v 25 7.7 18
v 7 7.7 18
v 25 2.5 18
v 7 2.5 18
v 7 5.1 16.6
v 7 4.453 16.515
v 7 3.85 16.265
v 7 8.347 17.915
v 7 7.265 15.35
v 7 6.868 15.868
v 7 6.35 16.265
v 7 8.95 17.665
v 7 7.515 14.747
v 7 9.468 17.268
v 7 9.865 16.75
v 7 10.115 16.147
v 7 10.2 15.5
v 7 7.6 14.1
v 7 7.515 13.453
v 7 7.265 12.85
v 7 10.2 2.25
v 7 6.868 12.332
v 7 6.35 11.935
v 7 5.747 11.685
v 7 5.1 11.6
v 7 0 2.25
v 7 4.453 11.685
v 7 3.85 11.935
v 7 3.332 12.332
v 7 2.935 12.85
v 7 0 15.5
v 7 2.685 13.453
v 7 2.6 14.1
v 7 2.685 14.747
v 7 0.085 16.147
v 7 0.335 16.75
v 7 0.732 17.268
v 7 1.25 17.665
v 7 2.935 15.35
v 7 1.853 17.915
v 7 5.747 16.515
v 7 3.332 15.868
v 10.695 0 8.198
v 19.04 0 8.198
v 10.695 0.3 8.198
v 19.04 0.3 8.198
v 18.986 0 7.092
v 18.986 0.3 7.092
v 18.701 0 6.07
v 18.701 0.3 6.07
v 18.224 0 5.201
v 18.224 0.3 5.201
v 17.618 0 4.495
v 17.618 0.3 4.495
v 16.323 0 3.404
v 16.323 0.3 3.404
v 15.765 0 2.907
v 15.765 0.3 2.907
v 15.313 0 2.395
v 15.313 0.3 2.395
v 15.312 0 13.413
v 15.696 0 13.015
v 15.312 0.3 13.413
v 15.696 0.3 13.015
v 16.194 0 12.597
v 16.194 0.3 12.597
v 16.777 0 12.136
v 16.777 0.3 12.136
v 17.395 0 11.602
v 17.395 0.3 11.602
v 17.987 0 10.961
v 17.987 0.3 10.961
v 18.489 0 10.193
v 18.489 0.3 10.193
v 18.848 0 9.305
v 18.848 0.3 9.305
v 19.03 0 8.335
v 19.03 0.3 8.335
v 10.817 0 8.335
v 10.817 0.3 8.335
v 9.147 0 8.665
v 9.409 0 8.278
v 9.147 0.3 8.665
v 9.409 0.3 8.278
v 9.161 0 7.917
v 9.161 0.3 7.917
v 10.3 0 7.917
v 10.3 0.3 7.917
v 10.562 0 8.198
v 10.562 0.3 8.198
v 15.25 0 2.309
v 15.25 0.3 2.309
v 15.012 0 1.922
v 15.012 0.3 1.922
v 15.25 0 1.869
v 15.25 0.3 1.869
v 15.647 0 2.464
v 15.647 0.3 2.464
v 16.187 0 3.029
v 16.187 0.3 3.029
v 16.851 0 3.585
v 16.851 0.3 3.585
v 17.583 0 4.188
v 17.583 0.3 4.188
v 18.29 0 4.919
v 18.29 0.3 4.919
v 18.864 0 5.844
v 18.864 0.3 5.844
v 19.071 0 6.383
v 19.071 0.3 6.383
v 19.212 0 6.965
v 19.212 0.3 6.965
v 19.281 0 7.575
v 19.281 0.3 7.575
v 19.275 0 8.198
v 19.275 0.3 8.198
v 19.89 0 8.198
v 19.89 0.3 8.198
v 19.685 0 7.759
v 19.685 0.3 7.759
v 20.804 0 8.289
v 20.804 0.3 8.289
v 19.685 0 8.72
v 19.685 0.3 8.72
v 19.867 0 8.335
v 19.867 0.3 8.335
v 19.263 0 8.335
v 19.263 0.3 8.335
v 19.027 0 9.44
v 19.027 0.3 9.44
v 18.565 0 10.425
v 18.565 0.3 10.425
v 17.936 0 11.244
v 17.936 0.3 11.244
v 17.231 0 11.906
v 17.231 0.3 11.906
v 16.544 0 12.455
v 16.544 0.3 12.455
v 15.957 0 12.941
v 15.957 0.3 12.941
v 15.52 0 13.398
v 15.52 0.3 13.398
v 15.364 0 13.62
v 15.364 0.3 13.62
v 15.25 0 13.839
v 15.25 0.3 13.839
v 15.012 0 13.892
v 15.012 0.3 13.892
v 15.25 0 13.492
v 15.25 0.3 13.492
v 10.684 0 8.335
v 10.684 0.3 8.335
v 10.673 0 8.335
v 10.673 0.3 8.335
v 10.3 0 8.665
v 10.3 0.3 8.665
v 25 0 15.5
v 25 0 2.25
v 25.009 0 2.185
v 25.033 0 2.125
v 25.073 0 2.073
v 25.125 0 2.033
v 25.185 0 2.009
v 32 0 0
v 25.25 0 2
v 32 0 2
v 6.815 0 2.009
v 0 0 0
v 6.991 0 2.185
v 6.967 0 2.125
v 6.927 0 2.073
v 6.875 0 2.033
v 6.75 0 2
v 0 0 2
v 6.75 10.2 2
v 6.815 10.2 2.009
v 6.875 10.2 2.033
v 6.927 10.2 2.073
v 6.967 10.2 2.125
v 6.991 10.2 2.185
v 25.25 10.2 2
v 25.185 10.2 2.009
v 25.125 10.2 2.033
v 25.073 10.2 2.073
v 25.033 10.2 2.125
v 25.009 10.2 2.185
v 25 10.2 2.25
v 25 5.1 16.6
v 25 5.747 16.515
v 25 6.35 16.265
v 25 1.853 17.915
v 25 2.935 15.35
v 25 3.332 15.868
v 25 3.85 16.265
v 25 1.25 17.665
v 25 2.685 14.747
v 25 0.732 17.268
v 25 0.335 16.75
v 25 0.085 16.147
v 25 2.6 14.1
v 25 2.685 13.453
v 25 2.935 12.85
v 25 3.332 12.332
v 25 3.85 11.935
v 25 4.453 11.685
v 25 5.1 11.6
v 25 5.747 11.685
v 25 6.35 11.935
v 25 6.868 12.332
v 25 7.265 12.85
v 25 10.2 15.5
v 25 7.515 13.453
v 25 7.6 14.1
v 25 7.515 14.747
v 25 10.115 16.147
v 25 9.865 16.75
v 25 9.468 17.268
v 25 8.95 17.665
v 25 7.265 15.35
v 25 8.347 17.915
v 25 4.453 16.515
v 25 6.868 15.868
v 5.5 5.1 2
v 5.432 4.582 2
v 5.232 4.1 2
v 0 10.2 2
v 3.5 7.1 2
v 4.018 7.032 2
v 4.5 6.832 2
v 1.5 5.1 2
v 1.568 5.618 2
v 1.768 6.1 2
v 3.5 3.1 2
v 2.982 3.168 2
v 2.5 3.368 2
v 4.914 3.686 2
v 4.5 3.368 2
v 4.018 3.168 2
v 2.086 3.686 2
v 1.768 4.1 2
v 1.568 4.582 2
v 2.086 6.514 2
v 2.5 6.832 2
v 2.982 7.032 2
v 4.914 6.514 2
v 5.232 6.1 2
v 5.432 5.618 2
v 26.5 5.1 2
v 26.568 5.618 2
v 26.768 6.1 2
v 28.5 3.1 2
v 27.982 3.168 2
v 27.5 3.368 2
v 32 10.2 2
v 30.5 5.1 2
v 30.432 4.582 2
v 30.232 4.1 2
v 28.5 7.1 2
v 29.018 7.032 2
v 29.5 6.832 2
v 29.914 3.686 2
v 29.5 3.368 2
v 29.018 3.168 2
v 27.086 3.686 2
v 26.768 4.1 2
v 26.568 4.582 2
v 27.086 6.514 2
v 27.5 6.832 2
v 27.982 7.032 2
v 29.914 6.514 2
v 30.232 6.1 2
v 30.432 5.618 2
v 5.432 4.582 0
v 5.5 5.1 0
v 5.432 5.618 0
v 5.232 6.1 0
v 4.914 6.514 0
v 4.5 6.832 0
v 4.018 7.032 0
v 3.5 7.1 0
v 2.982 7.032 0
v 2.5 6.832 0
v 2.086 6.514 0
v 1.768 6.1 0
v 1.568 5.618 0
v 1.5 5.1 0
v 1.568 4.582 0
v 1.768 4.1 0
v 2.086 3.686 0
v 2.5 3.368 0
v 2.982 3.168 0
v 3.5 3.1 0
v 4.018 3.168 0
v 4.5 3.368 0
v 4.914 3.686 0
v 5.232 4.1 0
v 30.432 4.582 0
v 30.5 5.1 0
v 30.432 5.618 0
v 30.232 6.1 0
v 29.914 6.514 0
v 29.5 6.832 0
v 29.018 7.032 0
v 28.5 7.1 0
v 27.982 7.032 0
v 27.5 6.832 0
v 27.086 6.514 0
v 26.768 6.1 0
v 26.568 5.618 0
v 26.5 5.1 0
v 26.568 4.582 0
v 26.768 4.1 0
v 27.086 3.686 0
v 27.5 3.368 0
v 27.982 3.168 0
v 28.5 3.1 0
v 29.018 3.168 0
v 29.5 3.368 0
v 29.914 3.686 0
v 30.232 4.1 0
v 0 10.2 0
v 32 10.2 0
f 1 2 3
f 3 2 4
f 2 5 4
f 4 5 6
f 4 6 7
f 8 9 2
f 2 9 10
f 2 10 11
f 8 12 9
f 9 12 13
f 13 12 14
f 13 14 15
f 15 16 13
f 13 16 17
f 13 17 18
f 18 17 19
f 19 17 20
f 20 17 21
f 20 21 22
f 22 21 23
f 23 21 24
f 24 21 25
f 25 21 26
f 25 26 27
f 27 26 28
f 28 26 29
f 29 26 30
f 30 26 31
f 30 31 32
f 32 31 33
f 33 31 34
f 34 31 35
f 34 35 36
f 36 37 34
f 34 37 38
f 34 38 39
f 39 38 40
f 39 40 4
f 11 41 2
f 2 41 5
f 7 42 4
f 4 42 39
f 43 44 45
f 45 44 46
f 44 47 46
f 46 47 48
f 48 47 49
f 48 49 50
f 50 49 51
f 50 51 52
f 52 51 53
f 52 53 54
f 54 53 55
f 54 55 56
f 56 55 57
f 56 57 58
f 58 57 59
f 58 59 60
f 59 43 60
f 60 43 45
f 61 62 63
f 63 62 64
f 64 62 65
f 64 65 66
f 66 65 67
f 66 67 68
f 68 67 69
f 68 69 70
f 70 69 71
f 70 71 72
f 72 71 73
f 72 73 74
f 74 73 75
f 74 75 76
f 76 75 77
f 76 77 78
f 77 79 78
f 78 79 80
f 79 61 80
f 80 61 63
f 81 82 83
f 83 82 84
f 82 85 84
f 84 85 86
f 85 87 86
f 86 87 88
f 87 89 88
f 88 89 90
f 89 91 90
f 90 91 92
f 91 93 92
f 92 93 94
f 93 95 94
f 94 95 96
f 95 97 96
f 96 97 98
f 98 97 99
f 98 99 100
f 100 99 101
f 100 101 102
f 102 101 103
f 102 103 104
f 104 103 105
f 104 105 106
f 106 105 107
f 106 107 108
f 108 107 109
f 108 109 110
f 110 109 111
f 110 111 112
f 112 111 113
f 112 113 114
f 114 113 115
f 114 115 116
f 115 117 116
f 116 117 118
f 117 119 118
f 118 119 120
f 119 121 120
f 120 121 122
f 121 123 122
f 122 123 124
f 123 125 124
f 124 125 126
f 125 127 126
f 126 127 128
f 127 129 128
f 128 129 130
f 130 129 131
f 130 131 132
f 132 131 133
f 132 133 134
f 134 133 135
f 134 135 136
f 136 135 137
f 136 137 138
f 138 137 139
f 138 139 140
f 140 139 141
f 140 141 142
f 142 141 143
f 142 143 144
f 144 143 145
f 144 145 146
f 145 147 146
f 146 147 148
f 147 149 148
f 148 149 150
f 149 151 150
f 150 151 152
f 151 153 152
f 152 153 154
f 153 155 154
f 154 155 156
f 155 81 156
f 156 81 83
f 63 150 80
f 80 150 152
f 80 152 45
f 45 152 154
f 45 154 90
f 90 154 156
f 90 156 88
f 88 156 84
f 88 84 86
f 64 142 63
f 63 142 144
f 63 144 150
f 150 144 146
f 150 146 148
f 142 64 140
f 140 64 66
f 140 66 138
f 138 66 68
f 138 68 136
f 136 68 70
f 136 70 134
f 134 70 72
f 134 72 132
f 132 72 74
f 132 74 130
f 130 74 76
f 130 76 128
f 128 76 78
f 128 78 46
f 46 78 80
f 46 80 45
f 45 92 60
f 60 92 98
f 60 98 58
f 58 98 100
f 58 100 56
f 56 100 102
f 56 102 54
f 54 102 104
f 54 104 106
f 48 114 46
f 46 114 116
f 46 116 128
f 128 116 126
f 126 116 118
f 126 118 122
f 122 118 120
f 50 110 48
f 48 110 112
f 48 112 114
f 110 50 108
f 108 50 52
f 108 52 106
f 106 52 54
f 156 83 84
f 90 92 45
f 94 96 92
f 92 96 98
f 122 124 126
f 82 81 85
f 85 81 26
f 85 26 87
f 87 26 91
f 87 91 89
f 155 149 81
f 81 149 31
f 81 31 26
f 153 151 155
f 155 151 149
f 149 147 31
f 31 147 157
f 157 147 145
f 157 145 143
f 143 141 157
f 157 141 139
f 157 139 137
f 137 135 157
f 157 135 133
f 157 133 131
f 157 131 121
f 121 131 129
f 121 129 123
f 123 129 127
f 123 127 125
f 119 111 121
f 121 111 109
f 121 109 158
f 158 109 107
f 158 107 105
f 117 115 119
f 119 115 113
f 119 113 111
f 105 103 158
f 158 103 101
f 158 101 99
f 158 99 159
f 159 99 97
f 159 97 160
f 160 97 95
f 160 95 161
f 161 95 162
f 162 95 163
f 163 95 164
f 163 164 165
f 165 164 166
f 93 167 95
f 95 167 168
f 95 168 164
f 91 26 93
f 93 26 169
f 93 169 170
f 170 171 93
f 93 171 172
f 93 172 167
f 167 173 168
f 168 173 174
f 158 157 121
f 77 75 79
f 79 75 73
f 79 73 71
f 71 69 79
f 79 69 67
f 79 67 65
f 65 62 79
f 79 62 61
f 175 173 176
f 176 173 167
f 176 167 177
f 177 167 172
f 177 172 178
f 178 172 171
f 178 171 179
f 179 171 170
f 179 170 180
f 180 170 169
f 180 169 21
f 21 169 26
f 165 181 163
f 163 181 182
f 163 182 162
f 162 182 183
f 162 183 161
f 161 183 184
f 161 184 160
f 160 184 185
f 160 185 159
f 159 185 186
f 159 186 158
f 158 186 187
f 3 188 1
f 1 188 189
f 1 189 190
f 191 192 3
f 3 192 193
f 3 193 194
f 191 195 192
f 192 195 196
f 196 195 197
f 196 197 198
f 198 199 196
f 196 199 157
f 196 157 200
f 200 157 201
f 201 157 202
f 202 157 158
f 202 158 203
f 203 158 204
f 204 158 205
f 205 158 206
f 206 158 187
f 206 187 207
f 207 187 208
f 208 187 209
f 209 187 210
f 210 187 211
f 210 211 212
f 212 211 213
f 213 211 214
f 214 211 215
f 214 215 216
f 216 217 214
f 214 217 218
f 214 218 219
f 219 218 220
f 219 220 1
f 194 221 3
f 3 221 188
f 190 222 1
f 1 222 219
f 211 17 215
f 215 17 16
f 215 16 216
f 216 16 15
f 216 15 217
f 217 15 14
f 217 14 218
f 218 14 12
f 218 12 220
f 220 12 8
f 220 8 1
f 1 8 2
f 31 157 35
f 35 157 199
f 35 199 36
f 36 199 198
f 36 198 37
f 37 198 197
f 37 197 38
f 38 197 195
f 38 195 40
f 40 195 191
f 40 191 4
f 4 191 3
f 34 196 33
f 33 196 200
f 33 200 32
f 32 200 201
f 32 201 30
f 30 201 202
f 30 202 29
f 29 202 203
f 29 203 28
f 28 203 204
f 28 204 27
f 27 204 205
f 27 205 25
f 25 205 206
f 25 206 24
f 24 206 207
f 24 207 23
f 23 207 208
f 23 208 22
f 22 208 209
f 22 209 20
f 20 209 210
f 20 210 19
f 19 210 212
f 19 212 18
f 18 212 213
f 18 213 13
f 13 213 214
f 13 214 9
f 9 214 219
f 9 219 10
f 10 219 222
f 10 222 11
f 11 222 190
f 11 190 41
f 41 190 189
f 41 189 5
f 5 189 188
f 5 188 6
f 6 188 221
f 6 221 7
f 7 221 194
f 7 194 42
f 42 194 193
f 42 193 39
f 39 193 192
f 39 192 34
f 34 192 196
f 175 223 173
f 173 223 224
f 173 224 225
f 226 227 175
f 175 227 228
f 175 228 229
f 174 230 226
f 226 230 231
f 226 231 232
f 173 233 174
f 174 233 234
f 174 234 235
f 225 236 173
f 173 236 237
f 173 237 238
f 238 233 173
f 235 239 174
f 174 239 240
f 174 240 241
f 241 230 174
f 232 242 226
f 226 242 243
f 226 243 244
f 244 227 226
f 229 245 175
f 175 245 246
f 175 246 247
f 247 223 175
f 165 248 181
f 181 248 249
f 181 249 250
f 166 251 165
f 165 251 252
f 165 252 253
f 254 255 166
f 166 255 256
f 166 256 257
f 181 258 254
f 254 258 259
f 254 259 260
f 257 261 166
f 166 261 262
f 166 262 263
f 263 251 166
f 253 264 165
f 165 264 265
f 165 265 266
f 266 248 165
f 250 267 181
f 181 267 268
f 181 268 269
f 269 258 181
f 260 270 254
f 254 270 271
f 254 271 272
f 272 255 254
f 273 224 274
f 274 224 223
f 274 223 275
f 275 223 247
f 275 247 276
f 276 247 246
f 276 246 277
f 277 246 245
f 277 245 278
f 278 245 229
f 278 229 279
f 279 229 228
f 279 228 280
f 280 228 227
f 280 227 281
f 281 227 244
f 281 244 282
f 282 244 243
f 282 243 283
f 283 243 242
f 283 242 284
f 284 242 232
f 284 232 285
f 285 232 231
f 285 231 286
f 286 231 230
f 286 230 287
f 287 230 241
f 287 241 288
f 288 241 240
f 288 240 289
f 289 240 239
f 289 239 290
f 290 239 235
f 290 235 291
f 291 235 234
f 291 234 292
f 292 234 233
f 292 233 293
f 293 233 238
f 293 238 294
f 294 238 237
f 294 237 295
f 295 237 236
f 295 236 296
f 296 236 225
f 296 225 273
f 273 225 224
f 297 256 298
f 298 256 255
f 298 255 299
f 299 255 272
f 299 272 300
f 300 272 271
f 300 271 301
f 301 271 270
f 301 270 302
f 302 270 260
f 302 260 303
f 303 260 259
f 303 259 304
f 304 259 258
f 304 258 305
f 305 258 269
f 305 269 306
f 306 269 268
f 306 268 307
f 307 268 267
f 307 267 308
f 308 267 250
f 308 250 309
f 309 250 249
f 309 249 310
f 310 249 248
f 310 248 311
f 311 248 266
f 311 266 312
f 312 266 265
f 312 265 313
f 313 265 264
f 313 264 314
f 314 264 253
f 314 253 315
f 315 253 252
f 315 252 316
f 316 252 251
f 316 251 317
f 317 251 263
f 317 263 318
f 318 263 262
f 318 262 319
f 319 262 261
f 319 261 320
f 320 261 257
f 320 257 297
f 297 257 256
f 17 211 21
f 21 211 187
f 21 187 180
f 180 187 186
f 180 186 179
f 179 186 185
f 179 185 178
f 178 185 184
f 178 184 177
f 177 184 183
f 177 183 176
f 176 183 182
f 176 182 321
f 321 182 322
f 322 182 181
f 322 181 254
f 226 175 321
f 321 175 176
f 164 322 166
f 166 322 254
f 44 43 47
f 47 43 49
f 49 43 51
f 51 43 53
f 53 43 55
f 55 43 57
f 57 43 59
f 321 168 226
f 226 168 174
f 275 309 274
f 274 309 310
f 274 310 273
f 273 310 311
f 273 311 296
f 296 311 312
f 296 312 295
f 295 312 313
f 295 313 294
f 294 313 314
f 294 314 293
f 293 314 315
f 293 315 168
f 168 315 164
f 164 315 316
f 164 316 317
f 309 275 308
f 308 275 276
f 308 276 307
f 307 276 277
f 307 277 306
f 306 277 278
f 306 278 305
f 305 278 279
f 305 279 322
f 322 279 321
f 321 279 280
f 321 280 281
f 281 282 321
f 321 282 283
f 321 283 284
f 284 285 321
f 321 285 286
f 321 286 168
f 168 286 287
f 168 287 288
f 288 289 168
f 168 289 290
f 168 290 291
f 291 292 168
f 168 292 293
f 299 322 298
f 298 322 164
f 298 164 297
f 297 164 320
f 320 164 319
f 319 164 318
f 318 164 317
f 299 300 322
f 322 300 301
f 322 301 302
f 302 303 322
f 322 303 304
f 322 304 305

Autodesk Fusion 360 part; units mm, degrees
sketch "Sketch1" plane through (0, 0, 0) normal (0, 0, 1) x (1, 0, 0)
  line L0 (0, 0) -> (32, 0)
  line L1 (32, 0) -> (32, 10.2)
  line L2 (32, 10.2) -> (0, 10.2)
  line L3 (0, 10.2) -> (0, 0)
  dimension "d1" = 32
  dimension "d2" = 10.2
extrude "Extrude1" add sketch "Sketch1" along normal blind 2
sketch "Sketch2" plane through (0, 0, 2) normal (0, 0, 1) x (-1, 0, 0)
  line L0 (0, -10.2) -> (0, 0)
  line L1 (0, 0) -> (-32, 0)
  line L2 (-32, 0) -> (-32, -10.2)
  line L3 (-32, -10.2) -> (0, -10.2)
  line L4 (-7, -10.2) -> (-25, -10.2)
  line L5 (-25, -10.2) -> (-25, 0)
  line L6 (-25, 0) -> (-7, 0)
  line L7 (-7, 0) -> (-7, -10.2)
  circle A0 centre (-3.5, -5.1) radius 2
  circle A1 centre (-28.5, -5.1) radius 2
  dimension "d5" = 7
  dimension "d6" = 7
  dimension "d7" = 5.1
  dimension "d8" = 3.5
  dimension "d9" = 4
  dimension "d10" = 3.5
  dimension "d11" = 5.1
  dimension "d12" = 4
extrude "Extrude2" cut sketch "Sketch2" against normal blind 2.1 contours A0 | A1
extrude "Extrude3" add sketch "Sketch2" along normal blind 16 contours L1 L3 L4 L5 L6 L7
sketch "Sketch3" plane through (25, 0, 0) normal (1, 0, 0) x (0, 1, 0)
  line L0 (0, 2) -> (10.2, 2)
  line L1 (10.2, 2) -> (10.2, 18)
  line L2 (10.2, 18) -> (0, 18)
  line L3 (0, 18) -> (0, 2)
  circle A0 centre (5.1, 14.1) radius 2.5
  dimension "d17" = 3.9
  dimension "d18" = 5.1
  dimension "d19" = 5
extrude "Extrude4" cut sketch "Sketch3" against normal blind 20 contours A0
fillet "Fillet1" radius 2.5 2 edges at (16, 0, 18) (16, 10.2, 18)
fillet "Fillet2" radius 0.25 2 edges at (25, 5.1, 2) (7, 5.1, 2)
sketch "Sketch4" plane through (0, 0, 0) normal (0, -1, 0) x (1, 0, 0)
  line L0 (25, 15.5) -> (7, 15.5)
  line L1 (7, 15.5) -> (7, 2.25)
  arc A0 (6.75, 2) -> (7, 2.25) centre (6.75, 2.25) ccw
  line L2 (6.75, 2) -> (0, 2)
  line L3 (0, 2) -> (0, 0)
  line L4 (0, 0) -> (32, 0)
  line L5 (32, 0) -> (32, 2)
  line L6 (32, 2) -> (25.25, 2)
  arc A1 (25, 2.25) -> (25.25, 2) centre (25.25, 2.25) ccw
  line L7 (25, 2.25) -> (25, 15.5)
  line L8 (15.0115, 13.8918) -> (15.2499, 13.8388)
  line L9 (15.0115, 1.9217) -> (15.2499, 1.8688)
  line L10 (15.2499, 2.3085) -> (10.5625, 8.1981)
  line L11 (10.6841, 8.3354) -> (15.2499, 13.4918)
  line L12 (10.817, 8.3354) -> (15.3124, 13.4128)
  line L13 (15.3132, 2.3954) -> (10.6954, 8.1981)
  spline S0 degree 5 poles (15.0115, 13.8918) (15.0366, 13.8331) (15.0755, 13.7537) (15.1214, 13.6739) (15.1743, 13.5935) (15.2341, 13.5126) (15.2499, 13.4918) knots 0 0 0 0 0 0 0.04 0.053771 0.053771 0.053771 0.053771 0.053771 0.053771
  line L14 (15.2177, 13.5342) -> (15.2821, 13.4495)
  spline S1 degree 5 poles (15.2499, 2.3085) (15.2476, 2.3054) (15.194, 2.2294) (15.1434, 2.1527) (15.0959, 2.0753) (15.0514, 1.9972) (15.0115, 1.9217) knots 0.958261 0.958261 0.958261 0.958261 0.958261 0.958261 0.96 1 1 1 1 1 1
  line L15 (15.2777, 2.3478) -> (15.2221, 2.2693)
  line L16 (19.8903, 8.1981) -> (19.6849, 7.759)
  line L17 (19.6849, 7.759) -> (20.8035, 8.2887)
  line L18 (20.8035, 8.2887) -> (19.6849, 8.7197)
  line L19 (19.6849, 8.7197) -> (19.8674, 8.3354)
  spline S2 degree 5 poles (15.2499, 13.8388) (15.275, 13.7801) (15.3328, 13.6621) (15.4428, 13.4833) (15.636, 13.2415) (15.9534, 12.9319) (16.3409, 12.6103) (16.7857, 12.2676) (17.2659, 11.8886) (17.7534, 11.4561) (18.2174, 10.9546) (18.6276, 10.3741) (18.9469, 9.734) (19.126, 9.1768) (19.2132, 8.7476) (19.2502, 8.4653) (19.263, 8.3354) knots 0 0 0 0 0 0 0.04 0.08 0.12 0.16 0.2 0.24 0.28 0.32 0.36 0.4 0.44 0.473865 0.473865 0.473865 0.473865 0.473865 0.473865
  line L20 (19.1848, 9.1287) -> (19.3411, 7.542)
  spline S3 degree 5 poles (19.2746, 8.1981) (19.2853, 8.0482) (19.2958, 7.7438) (19.2774, 7.2862) (19.1846, 6.69) (18.9625, 5.9984) (18.6463, 5.3801) (18.2572, 4.8452) (17.8198, 4.3863) (17.3603, 3.9873) (16.904, 3.6275) (16.4734, 3.2862) (16.0845, 2.9471) (15.7463, 2.6009) (15.5197, 2.3146) (15.375, 2.094) (15.2897, 1.9443) (15.2499, 1.8688) knots 0.481014 0.481014 0.481014 0.481014 0.481014 0.481014 0.52 0.56 0.6 0.64 0.68 0.72 0.76 0.8 0.84 0.88 0.92 0.96 1 1 1 1 1 1
  line L21 (19.2097, 9.1087) -> (19.3396, 7.2875)
  spline S4 degree 5 poles (15.3124, 13.4128) (15.332, 13.3889) (15.4036, 13.3041) (15.5393, 13.1573) (15.762, 12.9459) (16.1025, 12.6633) (16.5474, 12.3206) (17.0276, 11.9416) (17.515, 11.5091) (17.979, 11.0075) (18.3892, 10.427) (18.7131, 9.7778) (18.894, 9.2098) (18.9811, 8.7693) (19.0172, 8.476) (19.0296, 8.3354) knots 0.064218 0.064218 0.064218 0.064218 0.064218 0.064218 0.08 0.12 0.16 0.2 0.24 0.28 0.32 0.36 0.4 0.44 0.476625 0.476625 0.476625 0.476625 0.476625 0.476625
  line L22 (14.9219, 13.8881) -> (15.7028, 12.9376)
  line L23 (18.9651, 9.0672) -> (19.094, 7.6035)
  spline S5 degree 5 poles (19.0398, 8.1981) (19.0483, 8.0587) (19.0561, 7.765) (19.0358, 7.3185) (18.9432, 6.7334) (18.7242, 6.0513) (18.408, 5.433) (18.0189, 4.8982) (17.5814, 4.4393) (17.1219, 4.0403) (16.6657, 3.6805) (16.235, 3.3392) (15.8681, 3.0192) (15.6141, 2.7622) (15.4485, 2.5703) (15.3521, 2.4471) (15.3132, 2.3954) knots 0.483768 0.483768 0.483768 0.483768 0.483768 0.483768 0.52 0.56 0.6 0.64 0.68 0.72 0.76 0.8 0.84 0.88 0.92 0.948678 0.948678 0.948678 0.948678 0.948678 0.948678
  line L24 (18.989, 9.0312) -> (19.0905, 7.3649)
  line L25 (15.7537, 2.9821) -> (14.8727, 1.8087)
  line L26 (10.6954, 8.1981) -> (19.0398, 8.1981)
  line L27 (19.2746, 8.1981) -> (19.8903, 8.1981)
  line L28 (19.263, 8.3354) -> (19.8674, 8.3354)
  line L29 (10.6725, 8.3354) -> (10.3002, 8.665)
  line L30 (10.3002, 8.665) -> (9.1473, 8.665)
  line L31 (9.1473, 8.665) -> (9.409, 8.2777)
  line L32 (9.409, 8.2777) -> (9.1615, 7.917)
  line L33 (9.1615, 7.917) -> (10.3, 7.917)
  line L34 (10.3, 7.917) -> (10.5625, 8.1981)
  line L35 (10.6725, 8.3354) -> (10.6841, 8.3354)
  line L36 (10.817, 8.3354) -> (19.0296, 8.3354)
  point P0 (16.3357, 12.6206)
  point P1 (16.627, 3.4048)
  point P2 (18.7456, 10.1048)
  point P3 (18.825, 5.7617)
  point P4 (18.5867, 5.8147)
  point P5 (18.5072, 10.1578)
  point P6 (16.0973, 12.6736)
  point P7 (16.3886, 3.4577)
extrude "Extrude5" cut sketch "Sketch4" against normal blind 0.3 contours L8 L9 S0 L14 S1 L15 S2 L20 S3 L21 S4 L22 L23 S5 L24 L25 | L16 L17 L18 L19 L20 L21 L27 L28 | L10 L11 L12 L13 L14 L15 L22 L23 L24 L25 L26 L29 L30 L31 L32 L33 L34 L35 L36
sketch "Sketch5" plane through (0, 0, 18) normal (0, 0, 1) x (-1, 0, 0)
  line L0 (-25, -7.7) -> (-7, -7.7)
  line L1 (-7, -7.7) -> (-7, -2.5)
  line L2 (-7, -2.5) -> (-25, -2.5)
  line L3 (-25, -2.5) -> (-25, -7.7)
  line L4 (-7, -10.2) -> (-25, -10.2)
  line L5 (-25, -10.2) -> (-25, 0)
  line L6 (-25, 0) -> (-7, 0)
  line L7 (-7, 0) -> (-7, -10.2)
  point P0 (-7, -10.2)
  point P1 (-25, 0)
sketch "Sketch6" plane through (16, 5.1, 19.1) normal (0, 0, 1) x (1, 0, 0)
  line L0 (-9, 5.1) -> (9, 5.1)
  line L1 (9, 5.1) -> (9, -5.1)
  line L2 (9, -5.1) -> (-9, -5.1)
  line L3 (-9, -5.1) -> (-9, 5.1)
  point P0 (-9, 5.1)
  point P1 (9, -5.1)
extrude "Extrude6" add 1 faces at (19, 4.2333, 18) along direction (0, 0, 1) blind 1.1
sketch "Sketch7" plane through (16, 0, 18.55) normal (0, -1, 0) x (1, 0, 0)
  line L0 (-9, -3.05) -> (9, -3.05)
  line L1 (9, -3.05) -> (9, 0.55)
  line L2 (9, 0.55) -> (-9, 0.55)
  line L3 (-9, 0.55) -> (-9, -3.05)
  point P0 (-9, -3.05)
  point P1 (9, 0.55)
sketch "Sketch8" plane through (0, 0, 0) normal (0, -1, 0) x (1, 0, 0)
  line L0 (9.409, 8.2777) -> (9.1473, 8.665)
  line L1 (9.1473, 8.665) -> (10.3002, 8.665)
  line L2 (10.3002, 8.665) -> (10.6725, 8.3354)
  line L3 (10.6725, 8.3354) -> (10.6841, 8.3354)
  line L4 (10.6841, 8.3354) -> (15.2499, 13.4918)
  spline S0 degree 5 poles (15.2499, 13.4918) (15.2341, 13.5126) (15.1743, 13.5935) (15.1214, 13.6739) (15.0755, 13.7537) (15.0366, 13.8331) (15.0115, 13.8918) knots -0.053771 -0.053771 -0.053771 -0.053771 -0.053771 -0.053771 -0.04 0 0 0 0 0 0
  line L5 (15.0115, 13.8918) -> (15.2499, 13.8388)
  spline S1 degree 5 poles (15.2499, 13.8388) (15.275, 13.7801) (15.3328, 13.6621) (15.4428, 13.4833) (15.636, 13.2415) (15.9534, 12.9319) (16.3409, 12.6103) (16.7857, 12.2676) (17.2659, 11.8886) (17.7534, 11.4561) (18.2174, 10.9546) (18.6276, 10.3741) (18.9469, 9.734) (19.126, 9.1768) (19.2132, 8.7476) (19.2502, 8.4653) (19.263, 8.3354) knots 0 0 0 0 0 0 0.04 0.08 0.12 0.16 0.2 0.24 0.28 0.32 0.36 0.4 0.44 0.473865 0.473865 0.473865 0.473865 0.473865 0.473865
  line L6 (19.263, 8.3354) -> (19.8674, 8.3354)
  line L7 (19.8674, 8.3354) -> (19.6849, 8.7197)
  line L8 (19.6849, 8.7197) -> (20.8035, 8.2887)
  line L9 (20.8035, 8.2887) -> (19.6849, 7.759)
  line L10 (19.6849, 7.759) -> (19.8903, 8.1981)
  line L11 (19.8903, 8.1981) -> (19.2746, 8.1981)
  spline S2 degree 5 poles (19.2746, 8.1981) (19.2853, 8.0482) (19.2958, 7.7438) (19.2774, 7.2862) (19.1846, 6.69) (18.9625, 5.9984) (18.6463, 5.3801) (18.2572, 4.8452) (17.8198, 4.3863) (17.3603, 3.9873) (16.904, 3.6275) (16.4734, 3.2862) (16.0845, 2.9471) (15.7463, 2.6009) (15.5197, 2.3146) (15.375, 2.094) (15.2897, 1.9443) (15.2499, 1.8688) knots 0.481014 0.481014 0.481014 0.481014 0.481014 0.481014 0.52 0.56 0.6 0.64 0.68 0.72 0.76 0.8 0.84 0.88 0.92 0.96 1 1 1 1 1 1
  line L12 (15.2499, 1.8688) -> (15.0115, 1.9217)
  spline S3 degree 5 poles (15.0115, 1.9217) (15.0514, 1.9972) (15.0959, 2.0753) (15.1434, 2.1527) (15.194, 2.2294) (15.2476, 2.3054) (15.2499, 2.3085) knots -1 -1 -1 -1 -1 -1 -0.96 -0.958261 -0.958261 -0.958261 -0.958261 -0.958261 -0.958261
  line L13 (15.2499, 2.3085) -> (10.5625, 8.1981)
  line L14 (10.5625, 8.1981) -> (10.3, 7.917)
  line L15 (10.3, 7.917) -> (9.1615, 7.917)
  line L16 (9.1615, 7.917) -> (9.409, 8.2777)
  line L17 (25, 15.5) -> (7, 15.5)
  line L18 (7, 15.5) -> (7, 2.25)
  arc A0 (6.75, 2) -> (7, 2.25) centre (6.75, 2.25) ccw
  line L19 (6.75, 2) -> (0, 2)
  line L20 (0, 2) -> (0, 0)
  line L21 (0, 0) -> (32, 0)
  line L22 (32, 0) -> (32, 2)
  line L23 (32, 2) -> (25.25, 2)
  arc A1 (25, 2.25) -> (25.25, 2) centre (25.25, 2.25) ccw
  line L24 (25, 2.25) -> (25, 15.5)
  line L25 (7, 15.5) -> (25, 15.5)
  line L26 (25, 15.5) -> (25, 19.1)
  line L27 (25, 19.1) -> (7, 19.1)
  line L28 (7, 19.1) -> (7, 15.5)
  point P0 (25, 19.1)
sketch "Sketch9" plane through (0, 0, 0) normal (0, -1, 0) x (1, 0, 0)
sketch "Sketch10" plane through (25, 0, 0) normal (1, 0, 0) x (0, 1, 0)
  line L0 (0, 2.25) -> (10.2, 2.25)
  line L1 (10.2, 2.25) -> (10.2, 15.5)
  arc A0 (10.2, 15.5) -> (7.7, 18) centre (7.7, 15.5) ccw
  line L2 (7.7, 18) -> (7.7, 19.1)
  line L3 (7.7, 19.1) -> (2.5, 19.1)
  line L4 (2.5, 19.1) -> (2.5, 18)
  arc A1 (2.5, 18) -> (0, 15.5) centre (2.5, 15.5) ccw
  line L5 (0, 15.5) -> (0, 2.25)
  circle A2 centre (5.1, 14.1) radius 2.5
  line L6 (0, 19.1) -> (10.2, 19.1)
  line L7 (10.2, 19.1) -> (10.2, 10)
  line L8 (10.2, 10) -> (0, 10)
  line L9 (0, 10) -> (0, 19.1)
  line L10 (10.2, 2) -> (10.2, 18)
  point P0 (0, 19.1)
extrude "Extrude7" cut 1 faces at (19, 4.2333, 19.1) along direction (0, 0, -1) blind 1.1
